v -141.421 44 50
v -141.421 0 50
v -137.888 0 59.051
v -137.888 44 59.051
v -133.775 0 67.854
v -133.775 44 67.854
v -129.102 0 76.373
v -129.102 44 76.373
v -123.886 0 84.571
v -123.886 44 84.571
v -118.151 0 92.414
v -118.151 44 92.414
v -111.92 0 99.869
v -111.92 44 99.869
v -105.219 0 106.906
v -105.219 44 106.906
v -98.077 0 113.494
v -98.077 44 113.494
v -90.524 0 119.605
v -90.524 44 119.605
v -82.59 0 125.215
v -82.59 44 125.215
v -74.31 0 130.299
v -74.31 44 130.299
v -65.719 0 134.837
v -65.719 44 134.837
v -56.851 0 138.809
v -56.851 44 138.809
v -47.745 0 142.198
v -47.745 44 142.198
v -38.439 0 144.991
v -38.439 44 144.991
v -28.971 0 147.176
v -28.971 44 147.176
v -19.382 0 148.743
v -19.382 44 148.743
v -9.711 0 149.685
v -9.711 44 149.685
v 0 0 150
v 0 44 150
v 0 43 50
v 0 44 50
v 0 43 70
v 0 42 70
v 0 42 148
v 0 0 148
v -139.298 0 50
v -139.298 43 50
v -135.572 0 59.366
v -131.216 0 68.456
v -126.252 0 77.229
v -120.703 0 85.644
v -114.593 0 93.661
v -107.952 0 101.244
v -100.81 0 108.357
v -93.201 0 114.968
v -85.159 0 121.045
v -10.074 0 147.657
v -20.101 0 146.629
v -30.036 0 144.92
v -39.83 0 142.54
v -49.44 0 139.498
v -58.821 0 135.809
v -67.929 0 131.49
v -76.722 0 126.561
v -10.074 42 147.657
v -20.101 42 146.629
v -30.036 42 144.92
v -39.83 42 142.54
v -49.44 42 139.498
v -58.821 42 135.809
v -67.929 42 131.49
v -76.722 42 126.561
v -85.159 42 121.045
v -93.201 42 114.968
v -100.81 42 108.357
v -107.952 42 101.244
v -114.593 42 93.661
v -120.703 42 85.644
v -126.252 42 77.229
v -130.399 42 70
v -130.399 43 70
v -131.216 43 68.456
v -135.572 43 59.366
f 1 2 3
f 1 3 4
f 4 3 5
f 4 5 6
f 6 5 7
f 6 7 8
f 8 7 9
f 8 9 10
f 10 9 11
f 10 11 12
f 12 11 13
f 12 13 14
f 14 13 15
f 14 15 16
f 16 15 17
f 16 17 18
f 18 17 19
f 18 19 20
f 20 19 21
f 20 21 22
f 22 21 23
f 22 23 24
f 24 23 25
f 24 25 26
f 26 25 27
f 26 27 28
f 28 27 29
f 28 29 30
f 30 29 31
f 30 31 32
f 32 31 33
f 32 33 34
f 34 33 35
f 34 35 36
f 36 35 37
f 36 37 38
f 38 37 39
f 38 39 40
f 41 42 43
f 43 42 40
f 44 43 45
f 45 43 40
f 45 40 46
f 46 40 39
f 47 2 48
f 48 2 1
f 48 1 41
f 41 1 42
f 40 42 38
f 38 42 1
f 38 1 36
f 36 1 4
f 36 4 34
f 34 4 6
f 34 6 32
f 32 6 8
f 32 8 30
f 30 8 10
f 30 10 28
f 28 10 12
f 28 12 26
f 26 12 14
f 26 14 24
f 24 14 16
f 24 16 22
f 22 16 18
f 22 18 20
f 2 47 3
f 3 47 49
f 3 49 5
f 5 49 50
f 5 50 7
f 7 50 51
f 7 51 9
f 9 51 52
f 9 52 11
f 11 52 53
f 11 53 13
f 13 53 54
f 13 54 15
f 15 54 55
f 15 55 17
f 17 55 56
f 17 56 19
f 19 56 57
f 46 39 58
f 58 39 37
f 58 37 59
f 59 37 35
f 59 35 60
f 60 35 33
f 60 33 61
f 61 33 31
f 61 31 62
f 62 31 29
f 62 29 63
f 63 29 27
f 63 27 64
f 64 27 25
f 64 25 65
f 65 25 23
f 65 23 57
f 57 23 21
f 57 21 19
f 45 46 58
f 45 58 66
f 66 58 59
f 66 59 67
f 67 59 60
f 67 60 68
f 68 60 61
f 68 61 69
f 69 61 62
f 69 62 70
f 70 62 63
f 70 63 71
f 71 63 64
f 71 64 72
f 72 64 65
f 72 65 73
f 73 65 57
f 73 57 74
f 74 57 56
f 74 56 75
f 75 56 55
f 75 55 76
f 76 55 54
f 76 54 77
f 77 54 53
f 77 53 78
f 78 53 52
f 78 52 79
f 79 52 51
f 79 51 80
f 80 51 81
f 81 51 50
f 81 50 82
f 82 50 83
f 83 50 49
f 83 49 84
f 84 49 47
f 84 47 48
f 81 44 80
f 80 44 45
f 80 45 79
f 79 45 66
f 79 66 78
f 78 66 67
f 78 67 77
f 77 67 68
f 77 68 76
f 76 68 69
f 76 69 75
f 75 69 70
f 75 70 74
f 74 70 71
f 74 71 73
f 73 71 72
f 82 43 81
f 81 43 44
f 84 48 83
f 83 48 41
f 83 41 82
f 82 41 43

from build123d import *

# Parameters (mm, degrees)
BOSS_EXTRUDE1_DEPTH = 44
SHELL1_T            = -2
CUT_EXTRUDE1_DEPTH  = 1


with BuildPart() as part:
    # Sketch1 → Boss-Extrude1 (new body)
    with BuildSketch(Plane(origin=(0, 0, 0), x_dir=(1, 0, 0), z_dir=(0, 1, 0))):
        with BuildLine():
            Line((0, -50), (0, -150))
            ThreePointArc((0, -150), (-86.602540378, -122.474487139), (-141.421356237, -50))
            Line((-141.421356237, -50), (0, -50))
        make_face()
    extrude(amount=BOSS_EXTRUDE1_DEPTH)

    # Shell1
    shell1_openings = [part.faces().sort_by_distance(p)[0] for p in [
        (-56.564232989, 0, 91.421606215),
        (-70.710678119, 22, 50),
        (0, 22, 100),
    ]]
    offset(amount=SHELL1_T, openings=shell1_openings, kind=Kind.INTERSECTION)

    # Sketch3 → Cut-Extrude1 (cut)
    with BuildSketch(Plane.XZ.offset(-42)):
        with BuildLine():
            Line((-139.298241195, 50), (0, 50))
            Line((0, 50), (0, 70))
            Line((0, 70), (-130.399386502, 70))
            ThreePointArc((-130.399386502, 70), (-135.219091094, 60.16475217), (-139.298241195, 50))
        make_face()
    extrude(amount=-CUT_EXTRUDE1_DEPTH, mode=Mode.SUBTRACT)


solid = part.part
